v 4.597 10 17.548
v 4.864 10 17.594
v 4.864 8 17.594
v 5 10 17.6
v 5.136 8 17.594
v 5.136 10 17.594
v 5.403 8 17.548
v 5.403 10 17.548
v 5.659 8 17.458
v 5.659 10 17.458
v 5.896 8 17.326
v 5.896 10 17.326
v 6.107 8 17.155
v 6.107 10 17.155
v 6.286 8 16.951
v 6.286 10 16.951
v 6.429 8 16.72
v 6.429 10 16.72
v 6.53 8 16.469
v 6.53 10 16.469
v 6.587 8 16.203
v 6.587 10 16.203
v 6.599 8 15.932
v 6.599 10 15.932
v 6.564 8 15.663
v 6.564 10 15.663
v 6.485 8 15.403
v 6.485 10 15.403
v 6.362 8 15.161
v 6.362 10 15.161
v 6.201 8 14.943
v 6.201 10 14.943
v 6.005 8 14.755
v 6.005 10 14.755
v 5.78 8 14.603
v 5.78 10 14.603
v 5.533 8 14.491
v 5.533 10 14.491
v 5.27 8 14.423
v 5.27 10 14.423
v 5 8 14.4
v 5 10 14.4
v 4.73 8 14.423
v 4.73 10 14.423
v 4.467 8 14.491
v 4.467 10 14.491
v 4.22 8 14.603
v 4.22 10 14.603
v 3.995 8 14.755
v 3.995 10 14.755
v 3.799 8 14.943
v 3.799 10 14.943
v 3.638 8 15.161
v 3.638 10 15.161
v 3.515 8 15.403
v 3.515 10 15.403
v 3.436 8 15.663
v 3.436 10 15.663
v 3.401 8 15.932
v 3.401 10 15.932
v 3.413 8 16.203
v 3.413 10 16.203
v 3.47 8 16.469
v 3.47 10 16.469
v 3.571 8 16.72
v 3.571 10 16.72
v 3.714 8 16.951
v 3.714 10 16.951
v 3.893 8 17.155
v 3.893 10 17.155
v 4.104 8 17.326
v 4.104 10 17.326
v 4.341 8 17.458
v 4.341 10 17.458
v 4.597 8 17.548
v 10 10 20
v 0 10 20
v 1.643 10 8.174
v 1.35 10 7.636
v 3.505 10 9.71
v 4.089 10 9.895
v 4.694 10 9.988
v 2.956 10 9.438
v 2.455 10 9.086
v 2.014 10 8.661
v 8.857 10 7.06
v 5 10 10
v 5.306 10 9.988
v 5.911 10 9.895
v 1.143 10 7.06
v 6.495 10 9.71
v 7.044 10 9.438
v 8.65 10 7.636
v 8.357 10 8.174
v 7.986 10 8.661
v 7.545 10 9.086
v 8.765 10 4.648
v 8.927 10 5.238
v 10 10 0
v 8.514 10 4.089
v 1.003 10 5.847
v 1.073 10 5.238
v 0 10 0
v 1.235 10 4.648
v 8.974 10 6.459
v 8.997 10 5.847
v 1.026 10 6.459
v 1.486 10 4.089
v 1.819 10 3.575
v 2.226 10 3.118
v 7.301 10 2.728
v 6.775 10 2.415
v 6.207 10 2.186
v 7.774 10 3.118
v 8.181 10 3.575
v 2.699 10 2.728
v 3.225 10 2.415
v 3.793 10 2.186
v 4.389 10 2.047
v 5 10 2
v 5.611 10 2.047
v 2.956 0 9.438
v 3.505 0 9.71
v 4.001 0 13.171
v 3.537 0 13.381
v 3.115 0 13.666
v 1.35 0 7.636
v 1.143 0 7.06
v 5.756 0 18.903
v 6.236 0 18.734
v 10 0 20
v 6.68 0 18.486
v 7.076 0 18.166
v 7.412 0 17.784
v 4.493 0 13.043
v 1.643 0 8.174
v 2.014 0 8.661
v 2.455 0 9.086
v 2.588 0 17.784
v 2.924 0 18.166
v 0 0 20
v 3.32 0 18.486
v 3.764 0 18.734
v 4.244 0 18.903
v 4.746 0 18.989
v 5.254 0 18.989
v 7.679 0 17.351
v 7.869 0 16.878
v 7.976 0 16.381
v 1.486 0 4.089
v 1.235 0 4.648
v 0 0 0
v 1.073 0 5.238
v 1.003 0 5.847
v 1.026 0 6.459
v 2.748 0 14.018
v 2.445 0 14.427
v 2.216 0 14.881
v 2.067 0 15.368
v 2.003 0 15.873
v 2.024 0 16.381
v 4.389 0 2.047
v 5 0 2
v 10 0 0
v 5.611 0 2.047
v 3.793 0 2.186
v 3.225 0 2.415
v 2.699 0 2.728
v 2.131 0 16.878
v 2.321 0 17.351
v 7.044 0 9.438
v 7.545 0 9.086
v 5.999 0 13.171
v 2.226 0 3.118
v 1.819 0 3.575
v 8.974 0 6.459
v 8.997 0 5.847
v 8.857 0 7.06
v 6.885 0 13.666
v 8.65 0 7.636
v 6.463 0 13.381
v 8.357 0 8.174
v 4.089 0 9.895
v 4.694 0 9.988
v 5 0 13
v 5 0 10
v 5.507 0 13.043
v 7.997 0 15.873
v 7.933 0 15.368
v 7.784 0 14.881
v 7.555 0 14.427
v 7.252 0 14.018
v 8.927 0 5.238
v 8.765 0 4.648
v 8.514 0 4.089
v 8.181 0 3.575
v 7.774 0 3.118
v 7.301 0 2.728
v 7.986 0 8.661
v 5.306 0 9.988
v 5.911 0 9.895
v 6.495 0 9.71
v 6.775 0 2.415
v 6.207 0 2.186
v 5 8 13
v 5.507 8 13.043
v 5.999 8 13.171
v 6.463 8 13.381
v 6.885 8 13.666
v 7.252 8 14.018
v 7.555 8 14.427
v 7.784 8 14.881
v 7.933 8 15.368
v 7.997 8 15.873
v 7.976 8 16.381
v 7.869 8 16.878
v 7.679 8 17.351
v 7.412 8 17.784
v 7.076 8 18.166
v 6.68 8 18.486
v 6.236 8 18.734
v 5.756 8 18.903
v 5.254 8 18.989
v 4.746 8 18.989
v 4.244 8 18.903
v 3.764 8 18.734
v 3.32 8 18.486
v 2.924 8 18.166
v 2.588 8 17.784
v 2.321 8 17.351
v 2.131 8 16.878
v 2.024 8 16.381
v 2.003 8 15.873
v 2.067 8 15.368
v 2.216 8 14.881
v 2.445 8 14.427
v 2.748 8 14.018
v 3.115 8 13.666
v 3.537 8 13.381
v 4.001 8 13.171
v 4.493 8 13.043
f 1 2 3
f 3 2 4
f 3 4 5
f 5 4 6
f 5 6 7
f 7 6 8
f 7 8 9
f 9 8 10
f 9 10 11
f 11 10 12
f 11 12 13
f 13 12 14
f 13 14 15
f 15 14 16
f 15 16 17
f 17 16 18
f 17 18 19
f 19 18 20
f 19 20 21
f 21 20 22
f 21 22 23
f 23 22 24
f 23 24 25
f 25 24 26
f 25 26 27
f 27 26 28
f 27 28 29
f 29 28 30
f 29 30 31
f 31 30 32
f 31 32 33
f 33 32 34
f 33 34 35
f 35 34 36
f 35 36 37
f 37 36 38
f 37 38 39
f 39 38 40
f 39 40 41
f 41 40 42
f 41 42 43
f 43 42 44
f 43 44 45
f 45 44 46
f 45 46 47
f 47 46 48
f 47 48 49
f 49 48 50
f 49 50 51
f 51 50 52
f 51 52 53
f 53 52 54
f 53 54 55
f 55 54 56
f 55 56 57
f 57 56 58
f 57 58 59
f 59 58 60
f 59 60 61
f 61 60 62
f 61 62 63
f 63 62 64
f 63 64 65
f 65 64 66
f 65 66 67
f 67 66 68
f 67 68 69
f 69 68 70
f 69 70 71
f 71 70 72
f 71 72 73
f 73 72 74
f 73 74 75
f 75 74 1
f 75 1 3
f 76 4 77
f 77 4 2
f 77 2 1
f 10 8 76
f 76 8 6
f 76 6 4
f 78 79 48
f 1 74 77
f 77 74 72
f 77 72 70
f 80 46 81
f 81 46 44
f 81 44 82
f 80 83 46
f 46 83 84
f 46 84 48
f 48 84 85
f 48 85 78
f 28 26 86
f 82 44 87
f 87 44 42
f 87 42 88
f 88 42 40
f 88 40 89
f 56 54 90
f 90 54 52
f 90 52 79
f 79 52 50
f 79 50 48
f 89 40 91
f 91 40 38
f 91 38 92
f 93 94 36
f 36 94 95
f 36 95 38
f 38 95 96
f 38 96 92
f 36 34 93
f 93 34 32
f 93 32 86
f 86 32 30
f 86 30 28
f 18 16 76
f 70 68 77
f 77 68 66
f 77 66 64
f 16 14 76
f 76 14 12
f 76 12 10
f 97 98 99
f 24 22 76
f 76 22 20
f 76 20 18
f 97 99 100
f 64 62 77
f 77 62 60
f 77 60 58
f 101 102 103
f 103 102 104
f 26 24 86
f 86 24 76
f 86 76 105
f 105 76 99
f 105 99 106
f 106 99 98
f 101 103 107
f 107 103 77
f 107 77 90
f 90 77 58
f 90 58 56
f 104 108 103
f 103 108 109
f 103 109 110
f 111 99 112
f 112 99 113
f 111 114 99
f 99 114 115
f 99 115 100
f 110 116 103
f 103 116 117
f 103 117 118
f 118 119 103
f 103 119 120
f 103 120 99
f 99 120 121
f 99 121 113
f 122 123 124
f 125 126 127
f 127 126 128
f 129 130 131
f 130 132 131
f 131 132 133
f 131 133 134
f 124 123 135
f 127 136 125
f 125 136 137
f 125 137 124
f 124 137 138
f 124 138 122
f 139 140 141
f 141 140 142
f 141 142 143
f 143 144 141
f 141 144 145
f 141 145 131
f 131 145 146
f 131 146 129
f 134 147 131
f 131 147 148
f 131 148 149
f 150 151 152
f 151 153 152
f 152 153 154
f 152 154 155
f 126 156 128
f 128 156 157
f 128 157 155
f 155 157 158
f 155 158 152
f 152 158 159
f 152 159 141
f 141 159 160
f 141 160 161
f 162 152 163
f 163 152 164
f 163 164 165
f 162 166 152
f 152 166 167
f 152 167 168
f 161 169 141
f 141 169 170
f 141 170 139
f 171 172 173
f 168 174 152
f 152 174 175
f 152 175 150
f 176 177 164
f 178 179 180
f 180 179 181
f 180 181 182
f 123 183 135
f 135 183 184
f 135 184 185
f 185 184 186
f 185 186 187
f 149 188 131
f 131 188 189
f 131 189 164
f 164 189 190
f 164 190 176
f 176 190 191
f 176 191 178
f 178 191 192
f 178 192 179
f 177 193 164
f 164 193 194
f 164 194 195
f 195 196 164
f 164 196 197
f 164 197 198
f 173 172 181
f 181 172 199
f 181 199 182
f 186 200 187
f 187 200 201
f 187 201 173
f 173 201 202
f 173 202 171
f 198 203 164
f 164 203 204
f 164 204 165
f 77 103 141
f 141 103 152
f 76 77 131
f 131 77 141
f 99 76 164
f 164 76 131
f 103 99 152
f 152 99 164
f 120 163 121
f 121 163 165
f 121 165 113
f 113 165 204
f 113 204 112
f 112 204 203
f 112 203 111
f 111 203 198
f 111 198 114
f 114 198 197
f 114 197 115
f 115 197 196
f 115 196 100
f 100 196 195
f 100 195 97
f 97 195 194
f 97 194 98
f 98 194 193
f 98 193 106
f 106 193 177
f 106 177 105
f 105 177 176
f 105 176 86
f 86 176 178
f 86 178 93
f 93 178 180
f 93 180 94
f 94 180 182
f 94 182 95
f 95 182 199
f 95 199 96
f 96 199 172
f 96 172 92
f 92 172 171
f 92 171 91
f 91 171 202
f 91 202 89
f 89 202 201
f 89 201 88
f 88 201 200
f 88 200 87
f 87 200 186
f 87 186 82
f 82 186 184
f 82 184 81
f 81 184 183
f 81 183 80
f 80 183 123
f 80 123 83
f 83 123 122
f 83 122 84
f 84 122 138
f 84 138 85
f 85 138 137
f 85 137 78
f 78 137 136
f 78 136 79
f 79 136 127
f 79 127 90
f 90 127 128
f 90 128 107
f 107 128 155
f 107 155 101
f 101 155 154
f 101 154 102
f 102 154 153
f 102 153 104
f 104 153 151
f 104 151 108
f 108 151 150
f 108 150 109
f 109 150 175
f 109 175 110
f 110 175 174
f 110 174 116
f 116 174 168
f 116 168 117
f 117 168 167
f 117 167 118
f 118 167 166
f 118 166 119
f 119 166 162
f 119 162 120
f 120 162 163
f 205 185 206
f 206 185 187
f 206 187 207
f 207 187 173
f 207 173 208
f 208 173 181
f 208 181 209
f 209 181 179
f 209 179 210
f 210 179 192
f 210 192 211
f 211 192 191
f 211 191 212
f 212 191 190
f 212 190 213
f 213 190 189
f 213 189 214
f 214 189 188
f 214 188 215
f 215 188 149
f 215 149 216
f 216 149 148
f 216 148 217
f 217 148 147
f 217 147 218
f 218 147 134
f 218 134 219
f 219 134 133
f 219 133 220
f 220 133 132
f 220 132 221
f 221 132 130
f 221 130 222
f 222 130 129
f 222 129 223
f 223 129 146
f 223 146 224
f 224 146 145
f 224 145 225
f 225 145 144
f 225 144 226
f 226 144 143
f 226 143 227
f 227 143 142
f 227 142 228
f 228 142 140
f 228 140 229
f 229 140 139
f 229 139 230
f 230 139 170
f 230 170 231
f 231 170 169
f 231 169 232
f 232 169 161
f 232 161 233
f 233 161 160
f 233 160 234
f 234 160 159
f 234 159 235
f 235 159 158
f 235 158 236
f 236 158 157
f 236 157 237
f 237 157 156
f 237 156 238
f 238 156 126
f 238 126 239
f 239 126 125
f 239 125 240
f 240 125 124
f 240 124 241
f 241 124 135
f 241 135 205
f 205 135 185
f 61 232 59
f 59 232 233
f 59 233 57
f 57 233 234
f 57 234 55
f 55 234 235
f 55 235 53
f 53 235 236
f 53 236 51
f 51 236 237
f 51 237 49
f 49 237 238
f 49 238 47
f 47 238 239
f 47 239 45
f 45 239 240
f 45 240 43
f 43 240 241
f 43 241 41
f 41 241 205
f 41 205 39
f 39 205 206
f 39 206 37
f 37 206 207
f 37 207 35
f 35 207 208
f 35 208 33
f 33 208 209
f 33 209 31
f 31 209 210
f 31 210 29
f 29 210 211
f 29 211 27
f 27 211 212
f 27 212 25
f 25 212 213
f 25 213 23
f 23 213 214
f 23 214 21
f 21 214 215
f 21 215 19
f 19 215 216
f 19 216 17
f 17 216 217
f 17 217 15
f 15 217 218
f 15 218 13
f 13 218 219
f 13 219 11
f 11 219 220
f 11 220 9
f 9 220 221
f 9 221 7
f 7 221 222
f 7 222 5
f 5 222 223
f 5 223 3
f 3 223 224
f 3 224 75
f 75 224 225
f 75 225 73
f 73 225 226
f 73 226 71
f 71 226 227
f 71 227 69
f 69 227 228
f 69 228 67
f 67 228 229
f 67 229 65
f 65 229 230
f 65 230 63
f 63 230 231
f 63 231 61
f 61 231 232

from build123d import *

# Parameters (mm, degrees)
SKETCH1_W           = 10
SKETCH1_H           = 20
SKETCH1_R           = 4
SKETCH1_R_2         = 1.6
BOSS_EXTRUDE1_DEPTH = 10
SKETCH2_R           = 3
CUT_EXTRUDE1_DEPTH  = 8


with BuildPart() as part:
    # Sketch1 → Boss-Extrude1 (new body)
    with BuildSketch(Plane(origin=(0, 0, 0), x_dir=(1, 0, 0), z_dir=(0, 1, 0))):
        with Locations((5, -10)):
            Rectangle(SKETCH1_W, SKETCH1_H)
        with Locations((5, -6)):
            Circle(SKETCH1_R, mode=Mode.SUBTRACT)
        with Locations((5, -16)):
            Circle(SKETCH1_R_2, mode=Mode.SUBTRACT)
    extrude(amount=BOSS_EXTRUDE1_DEPTH)

    # Sketch2 → Cut-Extrude1 (cut)
    with BuildSketch(Plane.XZ):
        with Locations((5, 16)):
            Circle(SKETCH2_R)
    extrude(amount=-CUT_EXTRUDE1_DEPTH, mode=Mode.SUBTRACT)


solid = part.part
